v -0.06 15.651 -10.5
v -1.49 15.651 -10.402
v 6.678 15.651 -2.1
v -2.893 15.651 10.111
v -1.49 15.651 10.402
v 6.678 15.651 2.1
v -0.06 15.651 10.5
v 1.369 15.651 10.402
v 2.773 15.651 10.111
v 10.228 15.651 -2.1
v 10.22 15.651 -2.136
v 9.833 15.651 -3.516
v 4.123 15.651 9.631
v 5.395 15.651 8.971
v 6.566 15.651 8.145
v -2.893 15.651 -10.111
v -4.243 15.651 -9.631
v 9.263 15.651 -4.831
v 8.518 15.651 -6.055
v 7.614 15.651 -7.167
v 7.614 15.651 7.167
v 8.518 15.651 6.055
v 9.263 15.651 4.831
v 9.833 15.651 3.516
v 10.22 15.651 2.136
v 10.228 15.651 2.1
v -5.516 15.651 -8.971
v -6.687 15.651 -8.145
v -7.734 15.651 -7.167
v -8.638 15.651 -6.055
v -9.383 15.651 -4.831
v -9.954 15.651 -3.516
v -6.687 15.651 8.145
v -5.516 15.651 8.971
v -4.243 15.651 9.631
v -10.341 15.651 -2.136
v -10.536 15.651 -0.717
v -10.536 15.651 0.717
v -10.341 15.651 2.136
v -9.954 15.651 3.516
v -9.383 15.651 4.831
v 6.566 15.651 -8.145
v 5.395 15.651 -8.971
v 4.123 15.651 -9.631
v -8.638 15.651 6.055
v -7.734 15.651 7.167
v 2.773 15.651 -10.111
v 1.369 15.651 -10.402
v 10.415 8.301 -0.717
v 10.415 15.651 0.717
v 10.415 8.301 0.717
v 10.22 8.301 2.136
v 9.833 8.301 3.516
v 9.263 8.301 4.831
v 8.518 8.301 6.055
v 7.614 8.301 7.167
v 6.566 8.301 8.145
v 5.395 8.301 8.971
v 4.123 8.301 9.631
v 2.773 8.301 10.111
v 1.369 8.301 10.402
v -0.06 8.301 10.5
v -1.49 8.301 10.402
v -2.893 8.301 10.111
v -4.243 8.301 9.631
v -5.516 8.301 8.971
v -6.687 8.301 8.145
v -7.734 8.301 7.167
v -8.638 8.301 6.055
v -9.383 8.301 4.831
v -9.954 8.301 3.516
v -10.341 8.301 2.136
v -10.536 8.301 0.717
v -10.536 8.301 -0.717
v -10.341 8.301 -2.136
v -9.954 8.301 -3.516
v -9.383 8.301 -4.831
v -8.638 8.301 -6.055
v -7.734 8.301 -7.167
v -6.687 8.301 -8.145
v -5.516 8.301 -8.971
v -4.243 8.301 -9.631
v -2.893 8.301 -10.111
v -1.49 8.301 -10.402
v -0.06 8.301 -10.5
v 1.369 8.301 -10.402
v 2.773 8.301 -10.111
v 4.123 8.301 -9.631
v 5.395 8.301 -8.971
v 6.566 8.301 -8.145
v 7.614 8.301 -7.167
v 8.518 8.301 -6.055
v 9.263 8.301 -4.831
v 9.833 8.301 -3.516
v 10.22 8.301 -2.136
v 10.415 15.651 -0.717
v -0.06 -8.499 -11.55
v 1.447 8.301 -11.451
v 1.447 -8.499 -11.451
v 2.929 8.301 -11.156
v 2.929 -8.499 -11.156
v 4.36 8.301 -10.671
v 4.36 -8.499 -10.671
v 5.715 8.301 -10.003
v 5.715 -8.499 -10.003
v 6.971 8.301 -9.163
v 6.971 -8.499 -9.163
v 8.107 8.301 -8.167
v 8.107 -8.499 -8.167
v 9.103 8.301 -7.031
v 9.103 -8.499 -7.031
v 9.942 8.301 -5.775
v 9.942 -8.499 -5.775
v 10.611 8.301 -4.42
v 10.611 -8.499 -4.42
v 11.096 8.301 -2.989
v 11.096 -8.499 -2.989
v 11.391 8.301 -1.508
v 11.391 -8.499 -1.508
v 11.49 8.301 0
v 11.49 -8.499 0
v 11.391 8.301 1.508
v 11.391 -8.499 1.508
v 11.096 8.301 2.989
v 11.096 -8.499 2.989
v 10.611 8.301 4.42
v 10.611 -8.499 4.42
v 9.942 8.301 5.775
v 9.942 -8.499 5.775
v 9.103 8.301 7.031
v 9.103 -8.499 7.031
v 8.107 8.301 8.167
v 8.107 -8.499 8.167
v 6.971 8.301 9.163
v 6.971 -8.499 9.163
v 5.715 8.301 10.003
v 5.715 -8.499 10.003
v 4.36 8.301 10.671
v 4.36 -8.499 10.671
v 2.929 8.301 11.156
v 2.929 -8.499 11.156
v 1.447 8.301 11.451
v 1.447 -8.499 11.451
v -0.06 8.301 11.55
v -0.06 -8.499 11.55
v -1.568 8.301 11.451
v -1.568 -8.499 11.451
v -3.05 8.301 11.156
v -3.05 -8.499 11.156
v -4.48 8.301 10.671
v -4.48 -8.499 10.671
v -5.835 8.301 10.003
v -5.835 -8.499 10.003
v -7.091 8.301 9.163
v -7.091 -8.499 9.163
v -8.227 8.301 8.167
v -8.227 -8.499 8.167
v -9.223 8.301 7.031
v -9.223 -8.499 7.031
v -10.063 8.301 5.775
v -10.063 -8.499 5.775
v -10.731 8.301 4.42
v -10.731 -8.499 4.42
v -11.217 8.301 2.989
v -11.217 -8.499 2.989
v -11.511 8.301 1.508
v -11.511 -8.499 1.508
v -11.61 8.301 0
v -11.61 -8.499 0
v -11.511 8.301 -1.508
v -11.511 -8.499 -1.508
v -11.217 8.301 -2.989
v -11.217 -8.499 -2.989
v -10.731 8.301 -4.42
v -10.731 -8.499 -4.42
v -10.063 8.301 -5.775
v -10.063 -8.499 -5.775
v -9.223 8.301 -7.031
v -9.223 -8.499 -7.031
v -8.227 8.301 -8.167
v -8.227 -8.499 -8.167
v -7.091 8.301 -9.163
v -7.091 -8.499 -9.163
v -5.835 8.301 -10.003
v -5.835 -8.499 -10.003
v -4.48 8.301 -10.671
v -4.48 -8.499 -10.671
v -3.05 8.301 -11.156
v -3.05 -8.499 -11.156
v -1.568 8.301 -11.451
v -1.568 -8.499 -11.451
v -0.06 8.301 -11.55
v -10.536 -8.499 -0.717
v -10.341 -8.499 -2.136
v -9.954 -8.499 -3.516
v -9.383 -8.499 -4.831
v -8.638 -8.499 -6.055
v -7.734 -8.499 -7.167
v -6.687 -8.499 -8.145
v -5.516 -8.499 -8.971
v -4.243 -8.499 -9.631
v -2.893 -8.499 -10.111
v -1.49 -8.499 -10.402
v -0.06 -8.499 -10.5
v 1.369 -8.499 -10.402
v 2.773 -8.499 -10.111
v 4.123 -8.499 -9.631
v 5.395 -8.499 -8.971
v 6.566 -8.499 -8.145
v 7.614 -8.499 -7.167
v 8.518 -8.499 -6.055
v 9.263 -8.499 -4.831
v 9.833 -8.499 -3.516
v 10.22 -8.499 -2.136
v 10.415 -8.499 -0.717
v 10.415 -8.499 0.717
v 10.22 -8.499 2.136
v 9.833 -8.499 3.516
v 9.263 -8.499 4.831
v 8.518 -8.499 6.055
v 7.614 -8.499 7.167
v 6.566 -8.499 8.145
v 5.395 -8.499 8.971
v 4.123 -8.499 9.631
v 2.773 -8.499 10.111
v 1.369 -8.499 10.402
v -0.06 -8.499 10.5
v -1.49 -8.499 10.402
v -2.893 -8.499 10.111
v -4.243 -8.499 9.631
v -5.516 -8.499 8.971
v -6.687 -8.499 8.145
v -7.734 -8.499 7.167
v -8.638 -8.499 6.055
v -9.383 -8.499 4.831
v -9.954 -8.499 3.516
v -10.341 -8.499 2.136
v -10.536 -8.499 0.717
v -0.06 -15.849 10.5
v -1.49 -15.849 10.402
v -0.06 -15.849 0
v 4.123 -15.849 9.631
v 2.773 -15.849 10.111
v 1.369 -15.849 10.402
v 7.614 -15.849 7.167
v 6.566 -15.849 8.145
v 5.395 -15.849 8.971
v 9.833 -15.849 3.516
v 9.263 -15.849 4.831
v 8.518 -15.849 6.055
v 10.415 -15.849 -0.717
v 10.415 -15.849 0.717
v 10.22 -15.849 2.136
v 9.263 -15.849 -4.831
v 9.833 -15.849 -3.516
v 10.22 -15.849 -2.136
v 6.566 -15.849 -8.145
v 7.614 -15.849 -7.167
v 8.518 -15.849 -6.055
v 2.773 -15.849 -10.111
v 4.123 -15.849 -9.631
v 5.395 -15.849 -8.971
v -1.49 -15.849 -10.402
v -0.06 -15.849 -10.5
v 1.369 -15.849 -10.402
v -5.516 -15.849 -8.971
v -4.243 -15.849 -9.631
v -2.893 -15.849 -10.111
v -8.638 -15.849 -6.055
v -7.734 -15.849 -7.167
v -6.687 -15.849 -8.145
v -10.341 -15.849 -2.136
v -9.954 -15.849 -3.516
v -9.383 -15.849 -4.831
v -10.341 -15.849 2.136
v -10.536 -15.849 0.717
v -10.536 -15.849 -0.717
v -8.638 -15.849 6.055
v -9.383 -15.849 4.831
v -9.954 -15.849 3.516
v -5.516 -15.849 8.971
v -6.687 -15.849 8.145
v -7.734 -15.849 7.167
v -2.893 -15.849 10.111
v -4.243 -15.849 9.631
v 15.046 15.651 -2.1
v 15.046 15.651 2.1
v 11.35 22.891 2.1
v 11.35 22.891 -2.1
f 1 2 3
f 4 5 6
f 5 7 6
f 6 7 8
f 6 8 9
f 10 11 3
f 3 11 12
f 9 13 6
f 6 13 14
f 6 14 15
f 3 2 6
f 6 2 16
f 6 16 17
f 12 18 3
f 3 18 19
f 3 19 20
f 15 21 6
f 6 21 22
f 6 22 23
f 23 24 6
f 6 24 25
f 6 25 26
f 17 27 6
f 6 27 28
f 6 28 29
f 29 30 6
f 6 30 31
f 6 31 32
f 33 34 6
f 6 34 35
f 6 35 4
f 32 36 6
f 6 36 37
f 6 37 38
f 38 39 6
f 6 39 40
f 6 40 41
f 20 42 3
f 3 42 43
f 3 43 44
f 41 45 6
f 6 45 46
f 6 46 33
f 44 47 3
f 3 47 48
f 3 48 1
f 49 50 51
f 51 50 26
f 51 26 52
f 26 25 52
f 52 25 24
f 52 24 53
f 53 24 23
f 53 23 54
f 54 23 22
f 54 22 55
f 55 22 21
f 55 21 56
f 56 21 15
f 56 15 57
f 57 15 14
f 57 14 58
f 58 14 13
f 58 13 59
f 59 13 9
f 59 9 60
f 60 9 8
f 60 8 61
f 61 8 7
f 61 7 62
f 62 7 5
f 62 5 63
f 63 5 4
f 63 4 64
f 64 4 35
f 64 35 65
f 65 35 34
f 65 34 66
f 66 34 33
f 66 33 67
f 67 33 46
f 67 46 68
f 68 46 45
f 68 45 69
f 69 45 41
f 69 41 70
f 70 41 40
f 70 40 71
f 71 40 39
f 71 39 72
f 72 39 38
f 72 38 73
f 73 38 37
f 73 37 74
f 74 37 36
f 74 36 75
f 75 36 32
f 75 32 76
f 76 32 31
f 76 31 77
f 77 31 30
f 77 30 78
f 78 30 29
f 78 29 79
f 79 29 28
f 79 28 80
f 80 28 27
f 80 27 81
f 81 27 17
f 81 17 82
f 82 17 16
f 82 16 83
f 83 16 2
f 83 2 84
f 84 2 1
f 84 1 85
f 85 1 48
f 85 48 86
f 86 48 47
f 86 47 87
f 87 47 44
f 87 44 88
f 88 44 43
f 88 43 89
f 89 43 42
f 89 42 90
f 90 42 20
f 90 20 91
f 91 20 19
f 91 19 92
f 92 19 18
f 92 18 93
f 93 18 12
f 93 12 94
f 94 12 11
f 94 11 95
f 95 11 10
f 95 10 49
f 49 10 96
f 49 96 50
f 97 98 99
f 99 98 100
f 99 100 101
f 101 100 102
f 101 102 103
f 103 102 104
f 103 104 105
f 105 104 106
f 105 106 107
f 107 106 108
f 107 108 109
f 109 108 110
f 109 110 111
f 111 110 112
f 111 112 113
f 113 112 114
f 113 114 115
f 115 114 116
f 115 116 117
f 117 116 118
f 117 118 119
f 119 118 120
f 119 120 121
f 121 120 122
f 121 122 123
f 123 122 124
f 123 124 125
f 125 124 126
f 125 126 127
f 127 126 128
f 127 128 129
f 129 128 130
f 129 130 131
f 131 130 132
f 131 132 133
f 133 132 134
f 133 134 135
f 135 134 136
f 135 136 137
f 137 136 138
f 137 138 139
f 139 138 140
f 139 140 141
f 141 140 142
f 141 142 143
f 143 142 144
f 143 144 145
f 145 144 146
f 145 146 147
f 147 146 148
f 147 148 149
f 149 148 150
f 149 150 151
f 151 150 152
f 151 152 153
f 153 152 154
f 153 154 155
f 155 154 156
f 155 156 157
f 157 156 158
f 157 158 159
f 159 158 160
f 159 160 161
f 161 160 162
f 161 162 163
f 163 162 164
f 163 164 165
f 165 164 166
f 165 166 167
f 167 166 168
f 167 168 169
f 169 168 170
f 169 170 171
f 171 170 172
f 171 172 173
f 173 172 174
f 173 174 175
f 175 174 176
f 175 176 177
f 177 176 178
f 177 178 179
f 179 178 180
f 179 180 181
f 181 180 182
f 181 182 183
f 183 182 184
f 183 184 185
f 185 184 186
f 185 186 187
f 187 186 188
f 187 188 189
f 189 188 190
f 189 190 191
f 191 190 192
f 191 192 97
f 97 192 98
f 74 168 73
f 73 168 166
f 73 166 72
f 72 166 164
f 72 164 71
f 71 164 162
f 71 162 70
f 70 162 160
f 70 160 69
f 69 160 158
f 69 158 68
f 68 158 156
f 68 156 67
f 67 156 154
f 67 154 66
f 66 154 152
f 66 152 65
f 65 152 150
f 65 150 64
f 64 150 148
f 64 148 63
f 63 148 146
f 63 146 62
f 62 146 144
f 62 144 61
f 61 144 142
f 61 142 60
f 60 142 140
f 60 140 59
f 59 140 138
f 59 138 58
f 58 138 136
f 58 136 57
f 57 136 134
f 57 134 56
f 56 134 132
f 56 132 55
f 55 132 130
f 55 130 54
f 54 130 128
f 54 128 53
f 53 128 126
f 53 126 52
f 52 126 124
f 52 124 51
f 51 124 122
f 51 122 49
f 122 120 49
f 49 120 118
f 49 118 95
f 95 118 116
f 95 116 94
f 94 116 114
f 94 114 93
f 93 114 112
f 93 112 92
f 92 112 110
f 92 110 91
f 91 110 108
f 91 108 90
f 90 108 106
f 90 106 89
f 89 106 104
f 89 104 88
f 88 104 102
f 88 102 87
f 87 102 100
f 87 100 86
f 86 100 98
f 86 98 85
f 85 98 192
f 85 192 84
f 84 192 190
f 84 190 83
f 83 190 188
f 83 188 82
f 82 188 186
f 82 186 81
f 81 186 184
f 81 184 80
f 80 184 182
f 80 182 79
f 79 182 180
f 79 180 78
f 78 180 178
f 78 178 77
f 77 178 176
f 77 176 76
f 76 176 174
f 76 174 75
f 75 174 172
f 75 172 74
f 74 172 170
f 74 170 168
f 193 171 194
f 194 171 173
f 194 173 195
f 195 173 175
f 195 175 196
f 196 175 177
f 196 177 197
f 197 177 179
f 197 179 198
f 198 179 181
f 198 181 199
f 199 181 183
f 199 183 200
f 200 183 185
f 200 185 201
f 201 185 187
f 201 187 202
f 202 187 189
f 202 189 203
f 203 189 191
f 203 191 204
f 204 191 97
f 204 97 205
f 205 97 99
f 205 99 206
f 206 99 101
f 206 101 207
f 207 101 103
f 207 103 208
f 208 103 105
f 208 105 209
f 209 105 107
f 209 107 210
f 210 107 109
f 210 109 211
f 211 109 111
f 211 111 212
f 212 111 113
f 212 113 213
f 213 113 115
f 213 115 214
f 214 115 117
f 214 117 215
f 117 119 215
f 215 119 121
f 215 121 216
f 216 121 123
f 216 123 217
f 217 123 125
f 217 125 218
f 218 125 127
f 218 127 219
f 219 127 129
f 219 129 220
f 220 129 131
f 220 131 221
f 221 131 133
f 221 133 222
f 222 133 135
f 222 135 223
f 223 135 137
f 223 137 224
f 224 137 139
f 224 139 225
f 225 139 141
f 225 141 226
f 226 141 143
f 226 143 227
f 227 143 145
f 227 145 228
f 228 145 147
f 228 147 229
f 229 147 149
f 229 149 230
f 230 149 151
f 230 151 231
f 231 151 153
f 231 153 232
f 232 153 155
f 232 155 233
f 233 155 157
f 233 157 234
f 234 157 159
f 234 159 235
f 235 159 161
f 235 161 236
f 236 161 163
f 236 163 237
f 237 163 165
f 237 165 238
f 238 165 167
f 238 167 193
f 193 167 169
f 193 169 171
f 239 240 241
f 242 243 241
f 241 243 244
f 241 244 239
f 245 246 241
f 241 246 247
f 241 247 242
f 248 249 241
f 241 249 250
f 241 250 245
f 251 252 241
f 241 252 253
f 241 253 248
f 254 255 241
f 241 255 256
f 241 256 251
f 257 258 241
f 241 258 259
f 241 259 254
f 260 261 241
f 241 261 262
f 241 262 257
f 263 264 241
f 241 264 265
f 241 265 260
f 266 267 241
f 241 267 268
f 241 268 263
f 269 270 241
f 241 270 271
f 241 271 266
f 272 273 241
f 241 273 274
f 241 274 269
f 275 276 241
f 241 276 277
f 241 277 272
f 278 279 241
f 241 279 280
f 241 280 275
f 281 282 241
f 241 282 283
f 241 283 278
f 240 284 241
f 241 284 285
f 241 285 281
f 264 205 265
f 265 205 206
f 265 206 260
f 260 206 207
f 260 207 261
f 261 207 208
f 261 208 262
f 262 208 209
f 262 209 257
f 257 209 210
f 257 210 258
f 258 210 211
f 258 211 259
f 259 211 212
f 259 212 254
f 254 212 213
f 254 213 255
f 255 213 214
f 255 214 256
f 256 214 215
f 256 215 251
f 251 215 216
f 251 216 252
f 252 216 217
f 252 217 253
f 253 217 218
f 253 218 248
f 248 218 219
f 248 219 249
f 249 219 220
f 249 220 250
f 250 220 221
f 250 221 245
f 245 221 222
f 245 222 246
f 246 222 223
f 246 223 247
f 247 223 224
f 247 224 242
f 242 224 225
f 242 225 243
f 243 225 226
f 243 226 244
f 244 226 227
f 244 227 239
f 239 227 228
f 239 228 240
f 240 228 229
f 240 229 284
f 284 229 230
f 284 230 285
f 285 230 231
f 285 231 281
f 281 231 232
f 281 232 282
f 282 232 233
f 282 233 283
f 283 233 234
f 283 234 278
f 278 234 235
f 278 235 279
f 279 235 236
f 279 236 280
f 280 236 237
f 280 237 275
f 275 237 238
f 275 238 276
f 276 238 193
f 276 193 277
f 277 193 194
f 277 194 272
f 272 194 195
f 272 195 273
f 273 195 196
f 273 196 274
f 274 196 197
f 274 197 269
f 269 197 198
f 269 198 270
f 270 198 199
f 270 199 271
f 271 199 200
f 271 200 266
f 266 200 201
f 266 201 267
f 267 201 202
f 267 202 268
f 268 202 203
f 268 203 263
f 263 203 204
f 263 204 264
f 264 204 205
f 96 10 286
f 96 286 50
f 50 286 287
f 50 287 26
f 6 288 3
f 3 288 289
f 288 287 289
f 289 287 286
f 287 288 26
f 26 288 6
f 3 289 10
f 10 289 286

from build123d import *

# Parameters (mm, degrees)
SKETCH_1_R      = 5
EXTRUDE_1_DEPTH = 7.5
SKETCH_2_R      = 5.5
EXTRUDE_2_DEPTH = 4
EXTRUDE_3_DEPTH = 1
SCALE_1_SCALE   = 3
SCALE_2_SCALE   = 0.7


with BuildPart() as part:
    # 草图1 → 凸台-拉伸1 (new, symmetric)
    with BuildSketch(Plane(origin=(0, 0, 0), x_dir=(1, 0, 0), z_dir=(0, 1, 0))):
        with Locations(Location((0, 0, 0), (0, 0, 270))):
            Circle(SKETCH_1_R)
    extrude(amount=EXTRUDE_1_DEPTH, both=True)

    # 草图2 → 凸台-拉伸2 (add, symmetric)
    with BuildSketch(Plane(origin=(0, 0, 0), x_dir=(1, 0, 0), z_dir=(0, 1, 0))):
        with Locations(Location((0, 0, 0), (0, 0, 270))):
            Circle(SKETCH_2_R)
    extrude(amount=EXTRUDE_2_DEPTH, both=True)

    # 草图3 → 凸台-拉伸3 (add, symmetric)
    with BuildSketch(Plane.XY):
        Polygon((3.208751117, 7.5), (7.19369463, 7.5), (5.433428229, 10.94766776), align=None)
    extrude(amount=EXTRUDE_3_DEPTH, both=True)


with BuildPart() as part_1:
    # 缩放比例1: scaled about (0.054783729, 0.089765176, 0)
    add(part.part.scale(SCALE_1_SCALE).moved(Location((-0.109567458, -0.179530352, 0))))


with BuildPart() as part_2:
    # 缩放比例2: scaled about (0.05478373, 0.089765175, 0)
    add(part_1.part.scale(SCALE_2_SCALE).moved(Location((0.016435119, 0.026929553, 0))))


solid = part_2.part
